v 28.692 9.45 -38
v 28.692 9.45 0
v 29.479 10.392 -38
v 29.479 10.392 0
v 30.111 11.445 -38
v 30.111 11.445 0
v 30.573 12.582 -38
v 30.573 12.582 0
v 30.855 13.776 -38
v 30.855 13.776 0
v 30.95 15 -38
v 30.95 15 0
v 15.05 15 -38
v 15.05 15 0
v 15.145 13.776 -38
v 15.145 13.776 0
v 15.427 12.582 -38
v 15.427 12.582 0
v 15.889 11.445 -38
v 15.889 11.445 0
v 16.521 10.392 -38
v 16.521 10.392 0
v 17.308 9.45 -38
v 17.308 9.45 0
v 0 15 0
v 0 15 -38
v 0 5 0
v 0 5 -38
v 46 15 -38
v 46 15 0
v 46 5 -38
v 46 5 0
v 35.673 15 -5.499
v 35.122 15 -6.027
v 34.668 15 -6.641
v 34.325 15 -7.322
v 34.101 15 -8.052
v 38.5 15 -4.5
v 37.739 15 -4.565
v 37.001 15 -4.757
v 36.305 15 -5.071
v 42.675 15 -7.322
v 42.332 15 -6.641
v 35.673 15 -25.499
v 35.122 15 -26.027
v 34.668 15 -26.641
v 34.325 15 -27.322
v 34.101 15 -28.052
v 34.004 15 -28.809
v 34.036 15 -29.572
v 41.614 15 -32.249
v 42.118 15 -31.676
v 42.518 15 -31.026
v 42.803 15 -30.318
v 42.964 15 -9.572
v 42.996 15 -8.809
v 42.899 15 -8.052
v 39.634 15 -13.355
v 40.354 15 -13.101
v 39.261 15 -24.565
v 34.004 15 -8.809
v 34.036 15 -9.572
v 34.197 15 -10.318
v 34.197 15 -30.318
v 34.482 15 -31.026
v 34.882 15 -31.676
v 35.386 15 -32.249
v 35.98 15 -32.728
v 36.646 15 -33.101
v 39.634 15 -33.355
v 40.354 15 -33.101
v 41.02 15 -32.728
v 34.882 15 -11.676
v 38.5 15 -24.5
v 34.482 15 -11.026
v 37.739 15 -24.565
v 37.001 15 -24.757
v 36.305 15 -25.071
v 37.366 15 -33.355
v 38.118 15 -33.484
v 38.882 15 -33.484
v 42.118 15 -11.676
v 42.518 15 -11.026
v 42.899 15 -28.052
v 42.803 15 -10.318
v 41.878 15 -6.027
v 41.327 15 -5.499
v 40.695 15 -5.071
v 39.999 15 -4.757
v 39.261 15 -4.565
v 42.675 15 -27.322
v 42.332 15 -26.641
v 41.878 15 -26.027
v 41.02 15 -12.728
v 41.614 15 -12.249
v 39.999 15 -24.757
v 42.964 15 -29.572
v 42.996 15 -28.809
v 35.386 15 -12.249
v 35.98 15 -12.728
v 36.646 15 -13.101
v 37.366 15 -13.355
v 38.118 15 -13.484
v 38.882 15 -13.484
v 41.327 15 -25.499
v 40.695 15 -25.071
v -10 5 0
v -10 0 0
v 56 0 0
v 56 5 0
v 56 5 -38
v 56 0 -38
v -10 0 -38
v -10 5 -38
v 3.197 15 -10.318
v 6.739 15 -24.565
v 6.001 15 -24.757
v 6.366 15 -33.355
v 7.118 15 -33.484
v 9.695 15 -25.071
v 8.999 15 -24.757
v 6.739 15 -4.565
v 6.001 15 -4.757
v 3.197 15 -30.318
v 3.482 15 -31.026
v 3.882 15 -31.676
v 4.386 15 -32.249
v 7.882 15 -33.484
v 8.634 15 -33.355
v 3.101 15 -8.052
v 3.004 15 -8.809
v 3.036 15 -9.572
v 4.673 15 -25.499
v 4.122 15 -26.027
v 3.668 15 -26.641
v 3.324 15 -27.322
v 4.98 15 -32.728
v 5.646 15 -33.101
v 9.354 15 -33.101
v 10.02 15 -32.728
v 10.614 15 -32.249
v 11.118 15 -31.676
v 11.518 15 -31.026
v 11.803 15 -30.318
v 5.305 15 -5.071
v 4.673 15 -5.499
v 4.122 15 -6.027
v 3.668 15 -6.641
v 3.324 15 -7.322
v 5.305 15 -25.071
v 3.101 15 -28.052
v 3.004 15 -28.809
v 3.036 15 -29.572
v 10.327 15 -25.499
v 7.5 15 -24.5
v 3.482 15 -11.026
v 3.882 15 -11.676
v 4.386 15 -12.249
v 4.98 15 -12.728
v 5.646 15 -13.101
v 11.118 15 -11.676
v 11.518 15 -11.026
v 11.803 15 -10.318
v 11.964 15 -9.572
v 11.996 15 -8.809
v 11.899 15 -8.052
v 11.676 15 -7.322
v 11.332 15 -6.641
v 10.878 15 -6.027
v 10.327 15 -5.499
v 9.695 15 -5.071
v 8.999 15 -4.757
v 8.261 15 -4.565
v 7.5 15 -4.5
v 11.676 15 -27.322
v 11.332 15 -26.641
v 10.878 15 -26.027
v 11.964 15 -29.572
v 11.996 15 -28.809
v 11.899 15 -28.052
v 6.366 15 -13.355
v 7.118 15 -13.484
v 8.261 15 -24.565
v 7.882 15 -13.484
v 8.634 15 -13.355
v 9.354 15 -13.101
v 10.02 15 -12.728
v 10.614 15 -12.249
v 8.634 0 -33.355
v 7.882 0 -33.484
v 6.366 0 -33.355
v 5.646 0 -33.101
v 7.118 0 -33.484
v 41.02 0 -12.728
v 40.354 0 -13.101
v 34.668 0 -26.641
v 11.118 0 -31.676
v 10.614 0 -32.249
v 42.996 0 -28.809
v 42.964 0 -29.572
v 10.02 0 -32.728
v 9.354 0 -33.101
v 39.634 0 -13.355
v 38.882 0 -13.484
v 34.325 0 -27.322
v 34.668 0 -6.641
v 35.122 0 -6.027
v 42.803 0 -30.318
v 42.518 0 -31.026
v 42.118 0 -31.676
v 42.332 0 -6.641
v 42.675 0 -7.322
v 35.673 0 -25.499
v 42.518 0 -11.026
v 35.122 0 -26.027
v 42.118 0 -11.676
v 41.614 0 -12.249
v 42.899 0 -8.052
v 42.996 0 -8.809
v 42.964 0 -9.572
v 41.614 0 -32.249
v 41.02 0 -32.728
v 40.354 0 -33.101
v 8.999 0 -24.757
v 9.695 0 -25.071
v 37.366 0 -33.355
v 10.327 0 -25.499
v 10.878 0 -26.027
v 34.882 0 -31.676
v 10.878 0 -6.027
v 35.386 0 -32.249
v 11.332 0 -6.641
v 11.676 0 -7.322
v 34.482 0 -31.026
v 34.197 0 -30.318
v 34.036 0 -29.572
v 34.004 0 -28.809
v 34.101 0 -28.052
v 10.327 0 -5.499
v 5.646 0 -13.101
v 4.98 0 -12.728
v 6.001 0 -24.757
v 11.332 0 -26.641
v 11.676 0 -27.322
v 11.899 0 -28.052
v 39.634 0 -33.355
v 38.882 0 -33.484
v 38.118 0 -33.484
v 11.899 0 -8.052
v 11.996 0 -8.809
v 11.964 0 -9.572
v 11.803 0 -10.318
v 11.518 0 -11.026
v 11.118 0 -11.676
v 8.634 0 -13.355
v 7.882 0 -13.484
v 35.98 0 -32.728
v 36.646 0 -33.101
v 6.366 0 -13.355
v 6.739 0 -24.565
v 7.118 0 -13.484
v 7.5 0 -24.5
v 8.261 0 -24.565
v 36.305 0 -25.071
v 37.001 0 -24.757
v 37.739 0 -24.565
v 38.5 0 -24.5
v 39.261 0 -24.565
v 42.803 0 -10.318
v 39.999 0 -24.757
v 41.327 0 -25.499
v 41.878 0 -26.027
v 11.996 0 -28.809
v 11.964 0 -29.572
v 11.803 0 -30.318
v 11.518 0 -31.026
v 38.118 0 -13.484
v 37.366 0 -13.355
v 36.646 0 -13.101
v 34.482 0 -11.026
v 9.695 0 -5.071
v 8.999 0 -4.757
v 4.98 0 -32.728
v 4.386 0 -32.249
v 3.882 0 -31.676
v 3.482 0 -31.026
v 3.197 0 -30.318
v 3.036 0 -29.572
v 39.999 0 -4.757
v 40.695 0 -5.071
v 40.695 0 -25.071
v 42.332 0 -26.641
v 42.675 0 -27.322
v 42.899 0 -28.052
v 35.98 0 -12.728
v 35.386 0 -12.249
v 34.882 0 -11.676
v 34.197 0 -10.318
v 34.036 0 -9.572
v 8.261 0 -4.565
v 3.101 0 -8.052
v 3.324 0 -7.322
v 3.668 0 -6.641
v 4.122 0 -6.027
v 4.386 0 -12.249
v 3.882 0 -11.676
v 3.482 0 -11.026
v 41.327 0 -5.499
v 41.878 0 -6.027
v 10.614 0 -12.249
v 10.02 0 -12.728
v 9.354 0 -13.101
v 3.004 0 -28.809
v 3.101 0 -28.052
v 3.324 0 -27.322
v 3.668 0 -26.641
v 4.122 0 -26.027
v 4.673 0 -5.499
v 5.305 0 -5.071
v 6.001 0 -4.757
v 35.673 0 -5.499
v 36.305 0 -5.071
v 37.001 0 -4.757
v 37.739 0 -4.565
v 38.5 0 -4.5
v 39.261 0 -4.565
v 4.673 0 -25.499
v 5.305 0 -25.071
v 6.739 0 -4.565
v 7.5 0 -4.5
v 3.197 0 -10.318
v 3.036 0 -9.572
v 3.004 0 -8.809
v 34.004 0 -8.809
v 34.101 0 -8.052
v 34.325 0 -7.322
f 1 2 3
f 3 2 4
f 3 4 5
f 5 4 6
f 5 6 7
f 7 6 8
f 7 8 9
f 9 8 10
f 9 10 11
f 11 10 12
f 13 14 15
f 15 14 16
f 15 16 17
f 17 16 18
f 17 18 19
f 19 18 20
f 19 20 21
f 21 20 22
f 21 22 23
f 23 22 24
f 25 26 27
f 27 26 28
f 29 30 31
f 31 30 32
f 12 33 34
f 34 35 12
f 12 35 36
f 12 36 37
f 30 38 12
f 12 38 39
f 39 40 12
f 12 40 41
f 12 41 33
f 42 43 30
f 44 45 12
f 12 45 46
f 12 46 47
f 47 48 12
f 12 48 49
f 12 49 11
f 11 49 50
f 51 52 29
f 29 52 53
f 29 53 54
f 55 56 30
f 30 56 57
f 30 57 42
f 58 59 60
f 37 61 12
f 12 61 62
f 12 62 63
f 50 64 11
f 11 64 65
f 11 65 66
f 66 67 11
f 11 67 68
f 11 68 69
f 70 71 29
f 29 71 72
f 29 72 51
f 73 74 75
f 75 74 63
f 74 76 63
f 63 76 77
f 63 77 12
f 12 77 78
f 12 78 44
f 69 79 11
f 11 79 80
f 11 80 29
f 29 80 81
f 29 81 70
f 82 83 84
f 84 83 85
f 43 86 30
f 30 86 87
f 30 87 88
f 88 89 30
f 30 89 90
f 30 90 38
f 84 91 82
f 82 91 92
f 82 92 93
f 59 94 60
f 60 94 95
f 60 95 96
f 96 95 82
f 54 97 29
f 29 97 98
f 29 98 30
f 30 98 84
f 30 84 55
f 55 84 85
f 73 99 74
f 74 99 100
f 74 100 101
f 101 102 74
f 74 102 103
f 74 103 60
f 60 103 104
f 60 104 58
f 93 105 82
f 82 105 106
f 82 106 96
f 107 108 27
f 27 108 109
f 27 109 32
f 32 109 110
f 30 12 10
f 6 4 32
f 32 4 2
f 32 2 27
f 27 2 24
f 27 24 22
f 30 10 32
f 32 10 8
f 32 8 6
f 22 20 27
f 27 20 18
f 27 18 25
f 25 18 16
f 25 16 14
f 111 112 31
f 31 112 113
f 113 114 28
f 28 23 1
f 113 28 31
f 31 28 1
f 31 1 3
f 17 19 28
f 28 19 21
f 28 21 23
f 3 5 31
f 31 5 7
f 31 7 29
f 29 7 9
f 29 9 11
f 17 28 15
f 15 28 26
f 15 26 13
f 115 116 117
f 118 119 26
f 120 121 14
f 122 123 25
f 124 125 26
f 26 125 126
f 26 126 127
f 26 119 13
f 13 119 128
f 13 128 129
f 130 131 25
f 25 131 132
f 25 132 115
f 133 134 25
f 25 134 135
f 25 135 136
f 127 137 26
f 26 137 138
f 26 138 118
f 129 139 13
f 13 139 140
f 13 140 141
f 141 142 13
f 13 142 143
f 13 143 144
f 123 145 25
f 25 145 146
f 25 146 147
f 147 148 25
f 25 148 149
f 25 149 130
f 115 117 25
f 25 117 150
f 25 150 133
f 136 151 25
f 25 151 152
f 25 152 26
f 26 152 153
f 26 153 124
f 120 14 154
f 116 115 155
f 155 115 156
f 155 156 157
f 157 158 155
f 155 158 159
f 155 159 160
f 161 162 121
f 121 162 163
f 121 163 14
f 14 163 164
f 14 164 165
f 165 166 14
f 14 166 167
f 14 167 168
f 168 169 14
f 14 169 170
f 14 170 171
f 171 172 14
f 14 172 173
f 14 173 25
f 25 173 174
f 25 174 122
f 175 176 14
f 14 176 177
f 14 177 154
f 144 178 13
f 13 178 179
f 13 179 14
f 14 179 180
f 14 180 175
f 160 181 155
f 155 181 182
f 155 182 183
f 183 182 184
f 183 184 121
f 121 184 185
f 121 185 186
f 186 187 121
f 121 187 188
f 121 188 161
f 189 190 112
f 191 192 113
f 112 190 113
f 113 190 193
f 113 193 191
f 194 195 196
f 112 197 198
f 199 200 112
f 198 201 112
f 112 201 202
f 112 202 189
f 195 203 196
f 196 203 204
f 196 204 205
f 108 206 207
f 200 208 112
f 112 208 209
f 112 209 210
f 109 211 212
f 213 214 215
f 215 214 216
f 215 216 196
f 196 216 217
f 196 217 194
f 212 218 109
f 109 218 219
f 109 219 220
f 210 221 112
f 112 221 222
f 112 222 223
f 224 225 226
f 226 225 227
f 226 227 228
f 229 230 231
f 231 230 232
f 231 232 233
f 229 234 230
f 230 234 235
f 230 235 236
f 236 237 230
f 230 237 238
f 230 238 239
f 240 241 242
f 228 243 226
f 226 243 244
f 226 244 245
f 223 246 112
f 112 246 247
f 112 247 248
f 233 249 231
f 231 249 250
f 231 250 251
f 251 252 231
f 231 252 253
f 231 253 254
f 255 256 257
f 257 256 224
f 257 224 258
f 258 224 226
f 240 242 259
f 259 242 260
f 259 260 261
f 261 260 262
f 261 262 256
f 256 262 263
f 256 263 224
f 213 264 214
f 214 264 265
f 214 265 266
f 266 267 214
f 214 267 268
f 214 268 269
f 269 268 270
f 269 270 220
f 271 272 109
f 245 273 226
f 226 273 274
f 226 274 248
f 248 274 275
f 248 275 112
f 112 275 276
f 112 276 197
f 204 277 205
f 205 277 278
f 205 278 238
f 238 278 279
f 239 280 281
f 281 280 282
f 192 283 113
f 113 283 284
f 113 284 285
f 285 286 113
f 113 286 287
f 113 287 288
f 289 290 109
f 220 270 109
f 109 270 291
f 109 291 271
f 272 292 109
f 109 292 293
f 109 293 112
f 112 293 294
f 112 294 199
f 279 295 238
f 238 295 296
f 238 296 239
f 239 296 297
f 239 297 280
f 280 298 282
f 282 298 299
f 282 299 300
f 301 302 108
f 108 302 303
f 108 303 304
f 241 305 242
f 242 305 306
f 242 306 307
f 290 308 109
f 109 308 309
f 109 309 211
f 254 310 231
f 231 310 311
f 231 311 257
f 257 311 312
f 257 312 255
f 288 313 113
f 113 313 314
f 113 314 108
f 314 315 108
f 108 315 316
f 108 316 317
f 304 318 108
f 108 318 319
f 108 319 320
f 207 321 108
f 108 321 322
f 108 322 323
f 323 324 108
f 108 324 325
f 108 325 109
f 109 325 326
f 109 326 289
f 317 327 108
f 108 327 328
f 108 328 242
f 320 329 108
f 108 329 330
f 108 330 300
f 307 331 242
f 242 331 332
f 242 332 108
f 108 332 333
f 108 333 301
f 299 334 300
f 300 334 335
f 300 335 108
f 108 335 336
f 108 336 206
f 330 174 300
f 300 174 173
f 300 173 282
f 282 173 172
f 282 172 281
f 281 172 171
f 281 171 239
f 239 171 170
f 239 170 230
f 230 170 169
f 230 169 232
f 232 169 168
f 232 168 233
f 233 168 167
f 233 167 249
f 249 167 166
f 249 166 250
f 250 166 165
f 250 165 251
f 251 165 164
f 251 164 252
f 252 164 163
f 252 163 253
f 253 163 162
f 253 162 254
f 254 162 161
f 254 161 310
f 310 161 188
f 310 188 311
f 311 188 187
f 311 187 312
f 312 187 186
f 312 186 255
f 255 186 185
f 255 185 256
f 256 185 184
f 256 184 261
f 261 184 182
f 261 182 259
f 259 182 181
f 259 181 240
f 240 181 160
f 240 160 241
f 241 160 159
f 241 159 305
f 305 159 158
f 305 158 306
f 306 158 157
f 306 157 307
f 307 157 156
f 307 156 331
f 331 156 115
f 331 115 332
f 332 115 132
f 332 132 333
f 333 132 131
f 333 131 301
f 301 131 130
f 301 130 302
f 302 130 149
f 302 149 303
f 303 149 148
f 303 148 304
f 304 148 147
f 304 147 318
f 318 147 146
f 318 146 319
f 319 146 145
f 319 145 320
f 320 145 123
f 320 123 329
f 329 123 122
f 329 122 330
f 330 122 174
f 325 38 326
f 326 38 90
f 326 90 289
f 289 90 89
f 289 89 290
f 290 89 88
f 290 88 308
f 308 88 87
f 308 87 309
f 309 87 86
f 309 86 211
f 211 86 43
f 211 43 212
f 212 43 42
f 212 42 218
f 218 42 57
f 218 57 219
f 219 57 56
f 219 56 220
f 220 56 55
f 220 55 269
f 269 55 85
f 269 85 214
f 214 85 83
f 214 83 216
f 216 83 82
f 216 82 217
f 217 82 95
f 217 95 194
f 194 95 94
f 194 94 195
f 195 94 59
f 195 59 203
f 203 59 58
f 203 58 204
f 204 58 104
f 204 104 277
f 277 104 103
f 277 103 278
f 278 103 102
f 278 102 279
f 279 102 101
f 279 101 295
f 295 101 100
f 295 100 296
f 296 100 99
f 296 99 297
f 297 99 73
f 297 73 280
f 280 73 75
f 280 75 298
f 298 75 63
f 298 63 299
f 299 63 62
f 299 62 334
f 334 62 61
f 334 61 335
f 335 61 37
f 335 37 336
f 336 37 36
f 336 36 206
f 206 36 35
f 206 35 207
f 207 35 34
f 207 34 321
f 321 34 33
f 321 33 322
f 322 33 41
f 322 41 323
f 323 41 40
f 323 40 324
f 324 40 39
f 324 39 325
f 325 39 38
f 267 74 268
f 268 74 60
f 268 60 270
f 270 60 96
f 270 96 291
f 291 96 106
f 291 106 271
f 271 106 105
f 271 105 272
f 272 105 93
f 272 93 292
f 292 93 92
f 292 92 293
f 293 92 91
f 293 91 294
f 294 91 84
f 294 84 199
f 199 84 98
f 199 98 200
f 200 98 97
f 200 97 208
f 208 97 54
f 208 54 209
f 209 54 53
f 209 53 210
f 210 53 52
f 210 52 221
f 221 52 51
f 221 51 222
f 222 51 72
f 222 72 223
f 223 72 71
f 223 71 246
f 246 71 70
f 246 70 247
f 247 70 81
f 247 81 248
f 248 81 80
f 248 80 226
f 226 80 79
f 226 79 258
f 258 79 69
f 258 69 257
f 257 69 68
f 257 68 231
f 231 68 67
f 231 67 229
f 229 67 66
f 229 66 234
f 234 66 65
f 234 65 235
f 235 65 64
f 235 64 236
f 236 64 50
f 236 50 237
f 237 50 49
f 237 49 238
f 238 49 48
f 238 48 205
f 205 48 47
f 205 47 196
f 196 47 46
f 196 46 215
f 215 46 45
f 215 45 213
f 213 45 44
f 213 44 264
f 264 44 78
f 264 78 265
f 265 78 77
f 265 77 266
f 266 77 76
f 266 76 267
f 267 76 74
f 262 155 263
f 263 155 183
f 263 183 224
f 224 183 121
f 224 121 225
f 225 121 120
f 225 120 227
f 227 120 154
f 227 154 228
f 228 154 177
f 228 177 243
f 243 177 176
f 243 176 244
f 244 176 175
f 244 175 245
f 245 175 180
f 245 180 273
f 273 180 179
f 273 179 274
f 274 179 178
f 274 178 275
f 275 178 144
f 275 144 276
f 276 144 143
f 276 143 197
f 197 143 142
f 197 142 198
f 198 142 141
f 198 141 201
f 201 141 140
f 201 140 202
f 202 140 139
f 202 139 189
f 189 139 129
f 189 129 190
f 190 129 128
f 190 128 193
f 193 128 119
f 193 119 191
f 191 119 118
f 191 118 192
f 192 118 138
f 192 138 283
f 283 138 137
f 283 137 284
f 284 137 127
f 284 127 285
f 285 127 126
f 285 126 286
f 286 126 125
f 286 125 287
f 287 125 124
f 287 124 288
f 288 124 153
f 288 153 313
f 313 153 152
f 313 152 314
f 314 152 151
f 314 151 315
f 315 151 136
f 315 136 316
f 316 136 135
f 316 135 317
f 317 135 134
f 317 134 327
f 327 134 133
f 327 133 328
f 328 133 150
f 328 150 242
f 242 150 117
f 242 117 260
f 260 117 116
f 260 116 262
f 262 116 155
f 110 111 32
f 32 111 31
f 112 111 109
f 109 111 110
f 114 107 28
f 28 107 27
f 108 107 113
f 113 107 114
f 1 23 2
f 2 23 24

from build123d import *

# Parameters (mm, degrees)
SKETCH1_W              = 46
SKETCH1_H              = 38
BOSS_EXTRUDE1_DEPTH    = 15
M10X1_0_TAPPED_HOLE1_D = 9
SKETCH7_R              = 7.95
CUT_EXTRUDE1_DEPTH     = 62.522353661
SKETCH17_W             = 38
SKETCH17_H             = 5
BOSS_EXTRUDE2_DEPTH    = 10
SKETCH18_W             = 38
SKETCH18_H             = 5
BOSS_EXTRUDE3_DEPTH    = 10
SKETCH24_W             = 18.029816061
SKETCH24_H             = 38
BOSS_EXTRUDE4_DEPTH    = 6


with BuildPart() as part:
    # Sketch1 → Boss-Extrude1 (new body)
    with BuildSketch(Plane(origin=(0, 0, 0), x_dir=(1, 0, 0), z_dir=(0, 1, 0))):
        with Locations((23, 19)):
            Rectangle(SKETCH1_W, SKETCH1_H)
    extrude(amount=BOSS_EXTRUDE1_DEPTH)

    # M10x1.0 Tapped Hole1 (through all)
    with Locations(Plane(origin=(0, 15, 0), x_dir=(1, 0, 0), z_dir=(0, 1, 0))):
        with Locations((7.5, 29), (38.5, 29), (38.5, 9), (7.5, 9)):
            Hole(M10X1_0_TAPPED_HOLE1_D / 2)

    # Sketch7 → Cut-Extrude1 (cut, through all)
    with BuildSketch(Plane.XY):
        with Locations((23, 15)):
            Circle(SKETCH7_R)
    extrude(amount=-CUT_EXTRUDE1_DEPTH, mode=Mode.SUBTRACT)

    # Sketch17 → Boss-Extrude2 (add)
    with BuildSketch(Plane(origin=(46, 0, 0), x_dir=(0, 0, -1), z_dir=(1, 0, 0))):
        with Locations((19, 2.5)):
            Rectangle(SKETCH17_W, SKETCH17_H)
    extrude(amount=BOSS_EXTRUDE2_DEPTH)

    # Sketch18 → Boss-Extrude3 (add)
    with BuildSketch(Plane.ZY):
        with Locations((-19, 2.5)):
            Rectangle(SKETCH18_W, SKETCH18_H)
    extrude(amount=BOSS_EXTRUDE3_DEPTH)

    # Sketch24 → Boss-Extrude4 (add)
    with BuildSketch(Plane(origin=(0, 9.45, 0), x_dir=(1, 0, 0), z_dir=(0, 1, 0))):
        with Locations((23.165854861, 19)):
            Rectangle(SKETCH24_W, SKETCH24_H)
    extrude(amount=-BOSS_EXTRUDE4_DEPTH)


solid = part.part
